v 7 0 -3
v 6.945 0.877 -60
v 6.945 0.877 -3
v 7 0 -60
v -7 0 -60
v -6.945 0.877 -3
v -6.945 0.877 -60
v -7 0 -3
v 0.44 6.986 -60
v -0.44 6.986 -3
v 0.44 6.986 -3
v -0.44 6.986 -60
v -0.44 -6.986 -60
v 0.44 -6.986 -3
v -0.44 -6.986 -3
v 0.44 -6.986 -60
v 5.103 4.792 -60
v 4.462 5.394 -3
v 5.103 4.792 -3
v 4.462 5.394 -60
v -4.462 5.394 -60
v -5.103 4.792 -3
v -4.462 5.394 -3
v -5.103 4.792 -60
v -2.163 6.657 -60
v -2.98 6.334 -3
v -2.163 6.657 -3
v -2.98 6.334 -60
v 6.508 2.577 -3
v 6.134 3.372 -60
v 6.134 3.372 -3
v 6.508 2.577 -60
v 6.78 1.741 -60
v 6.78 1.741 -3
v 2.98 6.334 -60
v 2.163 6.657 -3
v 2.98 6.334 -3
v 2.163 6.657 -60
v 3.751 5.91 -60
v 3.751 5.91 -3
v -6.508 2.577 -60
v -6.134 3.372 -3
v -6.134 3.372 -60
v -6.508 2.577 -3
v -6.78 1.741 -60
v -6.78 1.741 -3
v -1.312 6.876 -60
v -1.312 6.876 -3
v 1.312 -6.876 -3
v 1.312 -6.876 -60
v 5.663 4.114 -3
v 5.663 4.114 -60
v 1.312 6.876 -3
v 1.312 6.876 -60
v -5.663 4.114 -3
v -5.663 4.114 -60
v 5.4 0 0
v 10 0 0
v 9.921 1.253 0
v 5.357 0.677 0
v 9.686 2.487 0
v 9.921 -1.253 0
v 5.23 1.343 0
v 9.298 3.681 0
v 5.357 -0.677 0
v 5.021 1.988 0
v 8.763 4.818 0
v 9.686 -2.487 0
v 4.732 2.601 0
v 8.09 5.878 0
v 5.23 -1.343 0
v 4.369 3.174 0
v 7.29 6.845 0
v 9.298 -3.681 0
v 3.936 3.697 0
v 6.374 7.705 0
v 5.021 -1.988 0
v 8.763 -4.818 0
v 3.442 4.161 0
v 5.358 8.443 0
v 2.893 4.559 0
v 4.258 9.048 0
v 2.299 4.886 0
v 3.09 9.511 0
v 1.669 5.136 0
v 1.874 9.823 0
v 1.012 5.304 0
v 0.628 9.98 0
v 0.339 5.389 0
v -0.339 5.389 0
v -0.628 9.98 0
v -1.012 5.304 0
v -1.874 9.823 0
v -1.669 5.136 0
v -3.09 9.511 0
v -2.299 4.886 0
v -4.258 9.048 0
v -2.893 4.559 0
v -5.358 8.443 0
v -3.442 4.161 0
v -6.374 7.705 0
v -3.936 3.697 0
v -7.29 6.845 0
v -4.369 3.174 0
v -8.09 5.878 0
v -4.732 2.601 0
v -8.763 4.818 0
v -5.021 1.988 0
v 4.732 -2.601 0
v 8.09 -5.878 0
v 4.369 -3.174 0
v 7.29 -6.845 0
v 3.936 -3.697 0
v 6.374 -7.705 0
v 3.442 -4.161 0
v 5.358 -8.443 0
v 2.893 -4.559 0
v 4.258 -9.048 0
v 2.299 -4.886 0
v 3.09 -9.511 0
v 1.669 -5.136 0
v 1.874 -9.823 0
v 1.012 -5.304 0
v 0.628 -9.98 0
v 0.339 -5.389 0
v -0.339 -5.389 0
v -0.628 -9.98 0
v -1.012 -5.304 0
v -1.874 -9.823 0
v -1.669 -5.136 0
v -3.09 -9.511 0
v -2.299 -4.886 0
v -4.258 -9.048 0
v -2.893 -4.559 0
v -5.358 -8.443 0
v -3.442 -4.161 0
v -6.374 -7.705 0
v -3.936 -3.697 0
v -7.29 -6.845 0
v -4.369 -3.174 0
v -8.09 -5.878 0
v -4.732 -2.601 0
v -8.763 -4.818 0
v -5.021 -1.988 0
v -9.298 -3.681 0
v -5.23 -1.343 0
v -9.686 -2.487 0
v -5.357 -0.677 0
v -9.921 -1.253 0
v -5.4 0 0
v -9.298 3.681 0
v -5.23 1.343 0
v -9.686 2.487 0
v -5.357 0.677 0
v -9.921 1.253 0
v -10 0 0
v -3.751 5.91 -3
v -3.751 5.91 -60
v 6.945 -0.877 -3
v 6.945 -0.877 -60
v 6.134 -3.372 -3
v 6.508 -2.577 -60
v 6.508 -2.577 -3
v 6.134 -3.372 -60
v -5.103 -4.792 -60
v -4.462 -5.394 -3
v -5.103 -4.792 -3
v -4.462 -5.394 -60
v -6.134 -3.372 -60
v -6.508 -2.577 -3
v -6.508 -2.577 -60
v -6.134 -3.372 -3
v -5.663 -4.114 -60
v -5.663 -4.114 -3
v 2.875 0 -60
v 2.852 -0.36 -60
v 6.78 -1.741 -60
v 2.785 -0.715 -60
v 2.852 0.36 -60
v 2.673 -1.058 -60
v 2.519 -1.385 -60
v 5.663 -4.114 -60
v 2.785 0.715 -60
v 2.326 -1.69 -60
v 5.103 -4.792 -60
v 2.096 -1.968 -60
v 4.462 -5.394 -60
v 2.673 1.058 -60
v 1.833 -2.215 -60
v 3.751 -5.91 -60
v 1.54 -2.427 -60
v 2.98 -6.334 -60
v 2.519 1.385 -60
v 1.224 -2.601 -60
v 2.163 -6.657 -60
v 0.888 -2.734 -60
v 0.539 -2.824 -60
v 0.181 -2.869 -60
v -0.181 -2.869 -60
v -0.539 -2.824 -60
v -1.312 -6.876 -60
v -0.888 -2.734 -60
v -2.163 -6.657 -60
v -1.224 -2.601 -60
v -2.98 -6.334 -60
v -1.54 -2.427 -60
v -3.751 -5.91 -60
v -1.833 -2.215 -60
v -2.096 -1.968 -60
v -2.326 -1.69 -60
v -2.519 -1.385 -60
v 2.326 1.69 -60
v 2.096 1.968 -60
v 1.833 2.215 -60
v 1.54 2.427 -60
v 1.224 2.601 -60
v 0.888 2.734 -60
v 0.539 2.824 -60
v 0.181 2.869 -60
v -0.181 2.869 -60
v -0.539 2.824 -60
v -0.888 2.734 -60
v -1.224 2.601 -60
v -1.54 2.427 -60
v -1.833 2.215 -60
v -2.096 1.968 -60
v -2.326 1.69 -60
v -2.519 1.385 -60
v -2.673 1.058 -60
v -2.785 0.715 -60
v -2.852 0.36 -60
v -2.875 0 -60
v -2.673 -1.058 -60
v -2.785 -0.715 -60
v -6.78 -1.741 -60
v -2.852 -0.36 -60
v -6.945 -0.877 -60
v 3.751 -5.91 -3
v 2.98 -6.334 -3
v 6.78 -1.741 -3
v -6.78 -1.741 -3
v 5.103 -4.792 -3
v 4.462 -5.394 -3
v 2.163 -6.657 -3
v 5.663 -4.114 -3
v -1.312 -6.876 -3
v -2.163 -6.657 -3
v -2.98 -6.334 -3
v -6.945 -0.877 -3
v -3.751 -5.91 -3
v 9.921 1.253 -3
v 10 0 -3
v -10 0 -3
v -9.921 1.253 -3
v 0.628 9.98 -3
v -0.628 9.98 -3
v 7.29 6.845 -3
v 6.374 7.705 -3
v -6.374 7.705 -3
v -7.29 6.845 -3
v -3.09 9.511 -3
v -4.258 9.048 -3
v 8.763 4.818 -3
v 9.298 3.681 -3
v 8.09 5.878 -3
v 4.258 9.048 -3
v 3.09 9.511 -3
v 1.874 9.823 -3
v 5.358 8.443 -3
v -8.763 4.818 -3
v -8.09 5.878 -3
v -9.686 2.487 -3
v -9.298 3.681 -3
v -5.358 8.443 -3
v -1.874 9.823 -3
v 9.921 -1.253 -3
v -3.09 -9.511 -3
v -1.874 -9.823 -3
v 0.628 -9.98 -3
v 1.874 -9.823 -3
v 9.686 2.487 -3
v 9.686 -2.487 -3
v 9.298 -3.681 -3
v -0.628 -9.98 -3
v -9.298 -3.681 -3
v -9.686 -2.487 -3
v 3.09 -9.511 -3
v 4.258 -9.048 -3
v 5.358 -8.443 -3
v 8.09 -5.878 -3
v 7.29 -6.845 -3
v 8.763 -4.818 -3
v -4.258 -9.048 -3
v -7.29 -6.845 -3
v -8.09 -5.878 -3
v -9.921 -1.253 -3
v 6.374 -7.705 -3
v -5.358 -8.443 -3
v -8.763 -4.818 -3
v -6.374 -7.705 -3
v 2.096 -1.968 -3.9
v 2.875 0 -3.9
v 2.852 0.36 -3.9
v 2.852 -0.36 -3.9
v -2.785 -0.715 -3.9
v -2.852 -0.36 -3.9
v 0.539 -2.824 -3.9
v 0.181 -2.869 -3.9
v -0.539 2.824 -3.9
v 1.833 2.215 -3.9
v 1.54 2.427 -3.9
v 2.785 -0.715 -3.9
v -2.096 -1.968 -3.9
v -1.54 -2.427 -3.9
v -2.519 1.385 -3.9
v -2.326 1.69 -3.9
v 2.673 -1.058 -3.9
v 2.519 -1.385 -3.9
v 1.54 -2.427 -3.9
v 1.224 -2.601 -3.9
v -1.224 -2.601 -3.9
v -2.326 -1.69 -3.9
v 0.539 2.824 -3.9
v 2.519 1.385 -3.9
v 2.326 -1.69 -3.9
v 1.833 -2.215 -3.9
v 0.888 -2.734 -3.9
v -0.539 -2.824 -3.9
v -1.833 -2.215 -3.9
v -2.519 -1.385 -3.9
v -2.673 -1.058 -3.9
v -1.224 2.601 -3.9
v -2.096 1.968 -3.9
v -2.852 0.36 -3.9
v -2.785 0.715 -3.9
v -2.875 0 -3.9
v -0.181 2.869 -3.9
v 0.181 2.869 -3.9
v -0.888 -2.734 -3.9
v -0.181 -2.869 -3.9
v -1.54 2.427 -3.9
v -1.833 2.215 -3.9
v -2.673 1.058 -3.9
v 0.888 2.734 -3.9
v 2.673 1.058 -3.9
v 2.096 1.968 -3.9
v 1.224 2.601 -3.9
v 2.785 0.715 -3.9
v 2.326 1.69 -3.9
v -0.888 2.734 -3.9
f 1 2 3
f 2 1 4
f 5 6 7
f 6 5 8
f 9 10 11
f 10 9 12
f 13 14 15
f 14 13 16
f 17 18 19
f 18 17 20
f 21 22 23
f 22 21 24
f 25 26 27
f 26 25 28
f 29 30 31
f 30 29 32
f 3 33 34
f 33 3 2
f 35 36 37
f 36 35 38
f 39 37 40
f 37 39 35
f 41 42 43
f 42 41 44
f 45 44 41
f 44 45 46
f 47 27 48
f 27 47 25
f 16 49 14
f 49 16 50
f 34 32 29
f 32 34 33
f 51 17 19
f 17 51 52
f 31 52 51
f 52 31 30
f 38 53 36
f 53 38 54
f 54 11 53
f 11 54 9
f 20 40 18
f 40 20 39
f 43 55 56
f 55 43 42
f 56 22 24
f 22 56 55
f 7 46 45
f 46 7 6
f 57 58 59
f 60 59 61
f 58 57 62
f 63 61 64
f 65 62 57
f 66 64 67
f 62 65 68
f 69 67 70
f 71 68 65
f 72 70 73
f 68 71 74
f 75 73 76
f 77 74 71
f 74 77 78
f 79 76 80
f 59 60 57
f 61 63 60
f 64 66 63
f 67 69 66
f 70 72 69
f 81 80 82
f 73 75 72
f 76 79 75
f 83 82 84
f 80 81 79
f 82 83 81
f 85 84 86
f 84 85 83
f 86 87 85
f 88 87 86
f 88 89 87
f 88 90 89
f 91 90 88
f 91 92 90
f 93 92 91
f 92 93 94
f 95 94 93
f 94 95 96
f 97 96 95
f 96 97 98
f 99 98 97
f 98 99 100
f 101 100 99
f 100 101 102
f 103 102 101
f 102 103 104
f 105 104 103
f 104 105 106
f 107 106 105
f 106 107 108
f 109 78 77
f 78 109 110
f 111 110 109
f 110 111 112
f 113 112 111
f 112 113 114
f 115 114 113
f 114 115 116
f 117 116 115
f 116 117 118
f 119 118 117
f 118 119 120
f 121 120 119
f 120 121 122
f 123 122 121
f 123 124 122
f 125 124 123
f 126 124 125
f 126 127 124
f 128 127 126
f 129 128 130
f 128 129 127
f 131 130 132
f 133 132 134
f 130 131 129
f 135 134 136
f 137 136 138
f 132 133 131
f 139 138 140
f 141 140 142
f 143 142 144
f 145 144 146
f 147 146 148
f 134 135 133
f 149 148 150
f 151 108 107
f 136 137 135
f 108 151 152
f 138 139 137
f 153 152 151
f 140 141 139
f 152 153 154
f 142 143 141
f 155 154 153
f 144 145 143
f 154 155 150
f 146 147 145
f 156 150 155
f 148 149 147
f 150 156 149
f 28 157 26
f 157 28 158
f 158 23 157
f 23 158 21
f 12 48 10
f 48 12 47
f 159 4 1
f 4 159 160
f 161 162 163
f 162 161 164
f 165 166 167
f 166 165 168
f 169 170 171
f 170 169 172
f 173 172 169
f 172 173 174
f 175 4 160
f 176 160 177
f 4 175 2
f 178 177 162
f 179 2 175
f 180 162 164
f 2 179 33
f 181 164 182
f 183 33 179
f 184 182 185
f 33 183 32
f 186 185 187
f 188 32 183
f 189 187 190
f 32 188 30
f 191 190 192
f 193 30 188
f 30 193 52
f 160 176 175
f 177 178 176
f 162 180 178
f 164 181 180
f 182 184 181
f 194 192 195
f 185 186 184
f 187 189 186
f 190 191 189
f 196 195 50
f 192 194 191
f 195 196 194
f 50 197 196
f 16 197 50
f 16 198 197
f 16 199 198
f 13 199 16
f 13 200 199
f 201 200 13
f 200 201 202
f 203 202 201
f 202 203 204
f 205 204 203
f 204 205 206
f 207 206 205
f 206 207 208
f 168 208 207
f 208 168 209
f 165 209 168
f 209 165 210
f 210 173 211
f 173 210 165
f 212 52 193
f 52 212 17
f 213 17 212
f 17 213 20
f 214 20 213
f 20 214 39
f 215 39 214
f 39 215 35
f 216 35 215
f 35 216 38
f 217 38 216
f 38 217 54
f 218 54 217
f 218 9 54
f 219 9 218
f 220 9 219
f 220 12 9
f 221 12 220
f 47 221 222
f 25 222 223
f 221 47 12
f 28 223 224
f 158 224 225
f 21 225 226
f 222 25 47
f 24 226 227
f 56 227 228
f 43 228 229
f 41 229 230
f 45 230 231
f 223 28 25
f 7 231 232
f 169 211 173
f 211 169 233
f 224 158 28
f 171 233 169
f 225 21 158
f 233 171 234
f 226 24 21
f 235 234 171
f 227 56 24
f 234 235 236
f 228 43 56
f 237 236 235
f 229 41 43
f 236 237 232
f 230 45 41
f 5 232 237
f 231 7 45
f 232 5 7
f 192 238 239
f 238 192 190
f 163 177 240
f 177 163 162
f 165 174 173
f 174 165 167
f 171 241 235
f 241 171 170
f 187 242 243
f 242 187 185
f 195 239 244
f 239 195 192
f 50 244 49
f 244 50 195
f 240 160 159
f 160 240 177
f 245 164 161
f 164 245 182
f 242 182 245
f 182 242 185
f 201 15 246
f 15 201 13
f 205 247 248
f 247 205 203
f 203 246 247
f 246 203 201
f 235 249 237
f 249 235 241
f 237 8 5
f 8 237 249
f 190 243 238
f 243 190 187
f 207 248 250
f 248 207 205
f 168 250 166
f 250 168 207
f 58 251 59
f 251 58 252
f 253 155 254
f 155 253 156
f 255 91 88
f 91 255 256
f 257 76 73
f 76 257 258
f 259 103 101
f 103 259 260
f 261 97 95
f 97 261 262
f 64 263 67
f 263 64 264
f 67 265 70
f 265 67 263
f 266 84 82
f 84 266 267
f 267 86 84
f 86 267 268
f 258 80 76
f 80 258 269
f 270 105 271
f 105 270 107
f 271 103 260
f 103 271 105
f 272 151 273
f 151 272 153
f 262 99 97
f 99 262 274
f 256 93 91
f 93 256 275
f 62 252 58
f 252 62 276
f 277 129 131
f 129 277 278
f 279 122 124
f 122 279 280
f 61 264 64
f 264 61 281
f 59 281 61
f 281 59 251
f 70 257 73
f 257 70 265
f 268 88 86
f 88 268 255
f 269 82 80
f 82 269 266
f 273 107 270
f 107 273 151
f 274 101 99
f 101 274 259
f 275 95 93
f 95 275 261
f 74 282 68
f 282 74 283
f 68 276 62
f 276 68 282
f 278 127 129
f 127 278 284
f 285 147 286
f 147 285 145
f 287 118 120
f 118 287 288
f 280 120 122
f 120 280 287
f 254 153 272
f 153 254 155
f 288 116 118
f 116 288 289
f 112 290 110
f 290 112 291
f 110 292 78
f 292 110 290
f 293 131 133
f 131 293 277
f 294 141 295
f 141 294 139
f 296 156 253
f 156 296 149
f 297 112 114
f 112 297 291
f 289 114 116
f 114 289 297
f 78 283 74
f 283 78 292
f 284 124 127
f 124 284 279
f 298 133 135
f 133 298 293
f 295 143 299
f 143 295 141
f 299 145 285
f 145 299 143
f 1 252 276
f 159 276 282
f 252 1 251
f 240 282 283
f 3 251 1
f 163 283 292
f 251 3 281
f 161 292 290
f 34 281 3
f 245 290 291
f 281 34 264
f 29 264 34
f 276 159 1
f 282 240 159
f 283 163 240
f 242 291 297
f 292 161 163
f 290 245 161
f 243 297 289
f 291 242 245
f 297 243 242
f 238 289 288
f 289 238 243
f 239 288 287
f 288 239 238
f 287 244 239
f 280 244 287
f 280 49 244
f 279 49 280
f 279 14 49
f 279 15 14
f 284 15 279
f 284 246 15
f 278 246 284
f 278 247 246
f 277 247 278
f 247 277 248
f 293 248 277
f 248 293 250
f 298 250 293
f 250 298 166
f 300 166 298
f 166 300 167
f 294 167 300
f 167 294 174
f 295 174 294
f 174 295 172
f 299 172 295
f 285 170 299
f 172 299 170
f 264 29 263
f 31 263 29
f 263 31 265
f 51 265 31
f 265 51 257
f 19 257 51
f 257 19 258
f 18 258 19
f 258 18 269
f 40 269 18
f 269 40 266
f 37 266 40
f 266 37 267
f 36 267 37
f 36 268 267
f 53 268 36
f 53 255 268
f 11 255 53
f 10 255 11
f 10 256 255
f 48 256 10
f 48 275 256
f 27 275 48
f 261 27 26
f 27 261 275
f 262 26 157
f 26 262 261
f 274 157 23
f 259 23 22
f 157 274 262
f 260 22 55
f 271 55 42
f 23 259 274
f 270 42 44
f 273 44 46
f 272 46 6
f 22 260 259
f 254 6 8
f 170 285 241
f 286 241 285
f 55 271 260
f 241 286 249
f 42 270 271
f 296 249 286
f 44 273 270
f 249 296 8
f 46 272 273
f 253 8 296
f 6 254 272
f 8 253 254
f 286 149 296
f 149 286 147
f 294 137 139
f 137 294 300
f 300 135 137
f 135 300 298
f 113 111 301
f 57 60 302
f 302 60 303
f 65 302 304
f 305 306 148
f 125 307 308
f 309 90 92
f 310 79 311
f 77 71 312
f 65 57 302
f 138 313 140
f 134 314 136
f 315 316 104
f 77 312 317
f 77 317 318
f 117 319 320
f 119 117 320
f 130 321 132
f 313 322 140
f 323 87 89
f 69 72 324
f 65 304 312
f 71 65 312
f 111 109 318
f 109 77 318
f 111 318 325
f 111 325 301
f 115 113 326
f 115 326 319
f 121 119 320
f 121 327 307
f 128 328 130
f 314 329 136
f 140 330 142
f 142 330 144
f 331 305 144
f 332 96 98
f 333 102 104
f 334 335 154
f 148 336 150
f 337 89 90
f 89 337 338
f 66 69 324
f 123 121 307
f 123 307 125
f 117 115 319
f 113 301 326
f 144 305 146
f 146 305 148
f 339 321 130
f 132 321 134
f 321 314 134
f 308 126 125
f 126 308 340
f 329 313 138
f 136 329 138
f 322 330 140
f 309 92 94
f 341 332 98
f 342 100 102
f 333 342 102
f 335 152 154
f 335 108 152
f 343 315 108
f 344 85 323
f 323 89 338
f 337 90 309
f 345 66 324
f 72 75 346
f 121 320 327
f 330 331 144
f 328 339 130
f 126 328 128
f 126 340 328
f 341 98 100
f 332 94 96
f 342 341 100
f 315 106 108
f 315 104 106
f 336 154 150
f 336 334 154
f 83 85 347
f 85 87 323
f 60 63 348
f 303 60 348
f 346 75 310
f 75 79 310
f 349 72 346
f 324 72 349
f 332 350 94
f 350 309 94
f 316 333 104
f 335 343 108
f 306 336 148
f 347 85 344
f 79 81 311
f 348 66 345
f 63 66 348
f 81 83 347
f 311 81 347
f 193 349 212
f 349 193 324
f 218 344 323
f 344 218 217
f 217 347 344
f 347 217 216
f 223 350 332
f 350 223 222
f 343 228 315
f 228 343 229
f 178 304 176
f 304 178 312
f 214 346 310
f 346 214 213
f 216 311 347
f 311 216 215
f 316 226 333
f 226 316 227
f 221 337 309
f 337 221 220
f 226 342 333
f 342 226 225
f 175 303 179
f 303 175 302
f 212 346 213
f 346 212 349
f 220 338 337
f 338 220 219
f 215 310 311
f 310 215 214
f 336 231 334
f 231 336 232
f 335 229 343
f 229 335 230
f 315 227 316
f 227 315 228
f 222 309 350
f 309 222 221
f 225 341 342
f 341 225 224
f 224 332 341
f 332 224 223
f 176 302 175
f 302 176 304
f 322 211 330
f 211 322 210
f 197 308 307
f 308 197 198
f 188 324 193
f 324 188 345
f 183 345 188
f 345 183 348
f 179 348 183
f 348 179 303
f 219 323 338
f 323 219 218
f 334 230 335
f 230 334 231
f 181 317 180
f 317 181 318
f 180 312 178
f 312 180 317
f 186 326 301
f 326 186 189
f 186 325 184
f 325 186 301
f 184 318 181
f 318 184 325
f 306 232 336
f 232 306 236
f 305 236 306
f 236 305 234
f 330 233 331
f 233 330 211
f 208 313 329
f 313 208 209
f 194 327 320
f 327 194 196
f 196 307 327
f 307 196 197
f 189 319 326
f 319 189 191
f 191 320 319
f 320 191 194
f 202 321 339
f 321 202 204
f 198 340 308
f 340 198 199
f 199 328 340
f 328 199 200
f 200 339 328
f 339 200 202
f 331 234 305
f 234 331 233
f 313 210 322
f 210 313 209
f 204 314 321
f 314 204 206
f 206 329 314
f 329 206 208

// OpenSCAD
$fn = 50;


difference() {
	union() {
		translate(v = [0, 0, -60.0000000000]) {
			cylinder(h = 60, r = 7.0000000000);
		}
		translate(v = [0, 0, -3.0000000000]) {
			cylinder(h = 3, r = 10.0000000000);
		}
	}
	union() {
		translate(v = [0, 0, 0]) {
			rotate(a = [0, 0, 0]) {
				difference() {
					union() {
						#translate(v = [0, 0, -60.0000000000]) {
							cylinder(h = 60, r = 2.6000000000);
						}
						#translate(v = [0, 0, -3.9000000000]) {
							cylinder(h = 3.9000000000, r = 7.0000000000, r1 = 2.8750000000, r2 = 5.4000000000);
						}
						#translate(v = [0, 0, -60.0000000000]) {
							cylinder(h = 60, r = 2.8750000000);
						}
						#translate(v = [0, 0, -60.0000000000]) {
							cylinder(h = 60, r = 2.6000000000);
						}
					}
					union();
				}
			}
		}
	}
}
